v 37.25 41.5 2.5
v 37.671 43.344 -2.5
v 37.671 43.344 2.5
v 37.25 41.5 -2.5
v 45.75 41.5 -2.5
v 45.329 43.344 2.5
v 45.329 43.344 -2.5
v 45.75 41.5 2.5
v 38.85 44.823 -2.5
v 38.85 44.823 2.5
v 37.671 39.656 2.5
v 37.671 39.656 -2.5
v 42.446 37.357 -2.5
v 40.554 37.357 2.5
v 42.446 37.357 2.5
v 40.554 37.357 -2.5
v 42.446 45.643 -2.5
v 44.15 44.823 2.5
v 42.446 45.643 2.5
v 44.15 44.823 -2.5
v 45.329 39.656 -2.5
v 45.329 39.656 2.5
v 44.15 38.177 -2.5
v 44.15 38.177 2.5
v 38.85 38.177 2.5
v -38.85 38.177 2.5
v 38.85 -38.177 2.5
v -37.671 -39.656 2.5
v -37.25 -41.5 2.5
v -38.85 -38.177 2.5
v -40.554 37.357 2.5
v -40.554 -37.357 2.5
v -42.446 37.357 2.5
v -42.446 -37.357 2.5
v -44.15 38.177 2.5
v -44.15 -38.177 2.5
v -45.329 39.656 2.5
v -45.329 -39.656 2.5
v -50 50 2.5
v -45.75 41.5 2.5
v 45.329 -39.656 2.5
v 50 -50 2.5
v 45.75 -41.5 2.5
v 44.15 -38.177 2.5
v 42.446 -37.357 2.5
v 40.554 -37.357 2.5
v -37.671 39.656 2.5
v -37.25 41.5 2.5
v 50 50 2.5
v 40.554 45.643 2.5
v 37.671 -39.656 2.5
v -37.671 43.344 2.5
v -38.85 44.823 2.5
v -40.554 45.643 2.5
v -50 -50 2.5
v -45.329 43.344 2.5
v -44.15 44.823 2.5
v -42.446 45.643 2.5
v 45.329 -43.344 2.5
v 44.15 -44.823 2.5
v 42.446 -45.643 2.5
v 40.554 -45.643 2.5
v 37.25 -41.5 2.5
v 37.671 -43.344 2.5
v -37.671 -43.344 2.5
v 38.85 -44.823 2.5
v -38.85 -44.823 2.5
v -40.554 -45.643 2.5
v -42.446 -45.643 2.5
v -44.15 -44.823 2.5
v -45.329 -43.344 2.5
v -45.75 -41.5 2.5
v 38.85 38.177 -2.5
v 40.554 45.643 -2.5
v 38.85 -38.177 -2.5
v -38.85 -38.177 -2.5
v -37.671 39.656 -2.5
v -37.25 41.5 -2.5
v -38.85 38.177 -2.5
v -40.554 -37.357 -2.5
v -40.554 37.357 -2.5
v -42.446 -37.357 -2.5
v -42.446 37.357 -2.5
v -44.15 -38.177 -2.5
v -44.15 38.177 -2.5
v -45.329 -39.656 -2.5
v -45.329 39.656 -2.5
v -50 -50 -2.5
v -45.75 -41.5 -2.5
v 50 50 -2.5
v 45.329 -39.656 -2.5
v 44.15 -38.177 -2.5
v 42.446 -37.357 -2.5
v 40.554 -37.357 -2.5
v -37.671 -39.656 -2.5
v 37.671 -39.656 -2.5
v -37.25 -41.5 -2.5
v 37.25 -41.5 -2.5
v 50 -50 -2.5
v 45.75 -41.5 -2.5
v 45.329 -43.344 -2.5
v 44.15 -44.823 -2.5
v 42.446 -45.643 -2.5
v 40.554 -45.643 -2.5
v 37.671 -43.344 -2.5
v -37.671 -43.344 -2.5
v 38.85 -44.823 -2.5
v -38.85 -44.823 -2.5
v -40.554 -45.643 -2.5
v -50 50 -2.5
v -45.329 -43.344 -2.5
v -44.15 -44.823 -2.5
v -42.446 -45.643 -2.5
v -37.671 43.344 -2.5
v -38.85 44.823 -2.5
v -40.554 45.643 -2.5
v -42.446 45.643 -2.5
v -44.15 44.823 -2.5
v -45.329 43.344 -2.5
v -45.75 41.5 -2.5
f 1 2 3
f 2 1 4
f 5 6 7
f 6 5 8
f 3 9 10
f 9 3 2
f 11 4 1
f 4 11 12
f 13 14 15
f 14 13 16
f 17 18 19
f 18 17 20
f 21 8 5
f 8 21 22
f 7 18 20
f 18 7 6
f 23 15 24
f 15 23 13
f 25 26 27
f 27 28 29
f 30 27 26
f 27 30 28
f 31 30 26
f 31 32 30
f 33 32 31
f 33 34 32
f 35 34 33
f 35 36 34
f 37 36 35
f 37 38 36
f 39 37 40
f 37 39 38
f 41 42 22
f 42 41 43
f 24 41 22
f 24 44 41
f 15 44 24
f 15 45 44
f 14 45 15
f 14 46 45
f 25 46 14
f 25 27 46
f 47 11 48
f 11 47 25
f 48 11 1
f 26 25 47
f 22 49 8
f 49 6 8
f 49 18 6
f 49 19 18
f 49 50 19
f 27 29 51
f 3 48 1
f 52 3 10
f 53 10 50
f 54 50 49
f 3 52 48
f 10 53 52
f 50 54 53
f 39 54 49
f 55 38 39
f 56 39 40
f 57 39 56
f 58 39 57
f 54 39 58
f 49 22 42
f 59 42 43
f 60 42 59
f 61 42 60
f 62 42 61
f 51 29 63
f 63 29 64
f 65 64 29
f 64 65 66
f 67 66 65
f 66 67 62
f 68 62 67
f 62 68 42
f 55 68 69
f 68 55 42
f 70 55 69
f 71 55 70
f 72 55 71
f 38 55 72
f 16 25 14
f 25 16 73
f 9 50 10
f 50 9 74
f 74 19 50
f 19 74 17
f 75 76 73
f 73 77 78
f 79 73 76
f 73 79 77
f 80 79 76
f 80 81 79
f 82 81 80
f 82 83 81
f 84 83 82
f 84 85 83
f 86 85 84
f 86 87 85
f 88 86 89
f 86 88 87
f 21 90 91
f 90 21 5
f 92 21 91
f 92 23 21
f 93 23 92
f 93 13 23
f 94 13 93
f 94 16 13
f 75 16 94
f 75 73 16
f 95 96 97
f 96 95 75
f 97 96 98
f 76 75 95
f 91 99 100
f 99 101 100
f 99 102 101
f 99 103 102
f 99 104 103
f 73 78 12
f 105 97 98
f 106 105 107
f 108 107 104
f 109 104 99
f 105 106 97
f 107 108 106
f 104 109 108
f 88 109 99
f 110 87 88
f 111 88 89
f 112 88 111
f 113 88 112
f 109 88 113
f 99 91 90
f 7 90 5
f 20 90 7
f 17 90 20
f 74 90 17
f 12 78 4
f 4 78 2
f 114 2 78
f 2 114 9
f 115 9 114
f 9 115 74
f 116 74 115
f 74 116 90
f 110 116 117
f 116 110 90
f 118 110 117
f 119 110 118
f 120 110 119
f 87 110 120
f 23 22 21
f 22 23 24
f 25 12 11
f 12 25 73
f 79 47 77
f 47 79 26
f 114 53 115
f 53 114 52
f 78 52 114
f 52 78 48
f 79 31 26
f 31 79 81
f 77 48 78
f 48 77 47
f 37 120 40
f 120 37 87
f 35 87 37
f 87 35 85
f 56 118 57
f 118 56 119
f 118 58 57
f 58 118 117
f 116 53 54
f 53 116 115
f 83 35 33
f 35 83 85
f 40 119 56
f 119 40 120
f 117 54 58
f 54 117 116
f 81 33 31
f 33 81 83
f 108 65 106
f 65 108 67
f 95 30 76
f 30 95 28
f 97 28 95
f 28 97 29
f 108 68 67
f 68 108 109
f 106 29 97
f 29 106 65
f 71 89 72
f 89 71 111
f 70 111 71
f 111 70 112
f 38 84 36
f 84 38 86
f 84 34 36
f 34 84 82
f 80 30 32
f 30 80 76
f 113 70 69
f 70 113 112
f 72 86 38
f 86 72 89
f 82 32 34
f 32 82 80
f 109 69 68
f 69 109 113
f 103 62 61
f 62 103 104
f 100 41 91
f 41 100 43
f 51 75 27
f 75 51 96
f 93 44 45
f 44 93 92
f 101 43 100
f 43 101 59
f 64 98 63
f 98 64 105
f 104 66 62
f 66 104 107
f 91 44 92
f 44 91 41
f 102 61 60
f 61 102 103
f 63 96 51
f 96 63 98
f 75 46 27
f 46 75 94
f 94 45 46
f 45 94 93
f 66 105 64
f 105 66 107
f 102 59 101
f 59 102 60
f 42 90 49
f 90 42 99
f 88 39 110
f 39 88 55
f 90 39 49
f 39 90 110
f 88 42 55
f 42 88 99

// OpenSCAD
// Generated by SolidPython 1.1.3 on 2023-01-09 23:21:47


difference() {
	cube(center = true, size = [100, 100, 5]);
	union() {
		translate(v = [41.5000000000, 41.5000000000]) {
			cylinder(center = true, h = 5, r = 4.2500000000);
		}
		translate(v = [-41.5000000000, 41.5000000000]) {
			cylinder(center = true, h = 5, r = 4.2500000000);
		}
		translate(v = [-41.5000000000, -41.5000000000]) {
			cylinder(center = true, h = 5, r = 4.2500000000);
		}
		translate(v = [41.5000000000, -41.5000000000]) {
			cylinder(center = true, h = 5, r = 4.2500000000);
		}
	}
}
/***********************************************
*********      SolidPython code:      **********
************************************************
 
import solid
import numbers
import pudb
from solid.utils import *
import viewscad
import subprocess
import os
import os.path as osp
import math
import sys

chamfer_extrude=solid.import_scad("./chamfer_extrude.scad")
chamfer_extrude=chamfer_extrude.chamfer_extrude
r = viewscad.Renderer(width=800, height=800)

def debug(model,f_name,path="/home/ts/code/projects/mfd/designs/debug"):
    solid.scad_render_to_file(model,osp.join(path,f_name)+".scad")
#generate position list of wells using offset from center
wells_pos_from_center_4 = lambda offset: [[-offset,offset],
                                        [offset, offset],
                                        [-offset, -offset],
                                        [offset, -offset]]
#wells_pos_from_center_2 = lambda offset: [[0,offset],
#                                        [0, -offset]]
wells_pos_from_center_2 = lambda offset: [[offset,0],
                                        [-offset,0]]

def make_well(dims,shape=None,height=None,dxf=False):
    def circle_cylinder():
        if dxf or (height is None):
            well = solid.circle(r=dims, segments=64)
        else:
            well = solid.cylinder(r=dims, h=height, segments=64, center = True)
        return well
    if dims is None:
        sys.exit("radius needs to be a number")
    if isinstance(dims, numbers.Number):
        well =circle_cylinder()
    elif len(dims)==1:
        if isinstance(dims[1], numbers.Number):
            well =circle_cylinder()
        else:
            sys.exit("radius needs to be a number")
    elif len(dims)==2:
        well = solid.square(dims,center = True)
    elif len(dims)==3:
        well = solid.cube(dims, center = True)
    return well

def wells_top_bottom(center_gap,device_dims=None,shape=None,height=None, positions = None, dxf = False):
    well_shape = make_well(device_dims,shape=shape,height=height,dxf=dxf)
    wells = []
    if positions is None:
        offset = radius+radius/2.0
        positions = wells_pos_from_center_2(offset)
    if dxf or (height is None):
        height = 0
    for position in positions:
        if dxf:
            wells.append(solid.translate([position[0],position[1]])(well_shape))
        else:
            wells.append(solid.translate([position[0],position[1],height/2.0])(well_shape))
    return  union()(*wells)

#place wells in four corners 
def four_corner(radius,height=None, positions = None, dxf = False):
    #if well pos not specified set
    #to equally spaced by half radius
    if positions is None:
        offset = radius+radius/2.0
        positions = wells_pos_from_center_4(offset)
    if dxf or (height is None):
        height = 0
    #make wells at positions with specified radius and height
    wells = []
    for position in positions:
        #make circle if making dxf
        if dxf:
            well_shape = solid.circle(r=radius, segments=64)
            well_shape = solid.translate([position[0],position[1]])(well_shape)
        #if stl make cylinder
        else:
            well_shape = solid.cylinder(r=radius, h=height, segments=64, center = True)
            well_shape = solid.translate([position[0],position[1],height/2.0])(well_shape)
        wells.append(well_shape)
    return  union()(*wells)

#generate channels 
def make_channels(length,width,height=0,num_chans=1,max_chans=None,spacing=None, dxf = False,
                  rotate_channels=False):
    if dxf or (height is None):
        height = 0
    #if channel gap not defined, is equal to
    if spacing is None: spacing = width
    #calculate number of channels if fitting max num within given width
    if not max_chans is None:
        import math
        num_chans = math.floor((max_chans-spacing)/(width+spacing))
    #get total width of channel section  
    total_width = (width*num_chans)+(spacing*(num_chans-1))

    #make template channel
    #if rotate_channels: width, length = length, width
    if dxf:
        channel_t = solid.square([length,width],center = True)
    else:
        channel_t = solid.cube([length,width,height], center = True)

    #if number channels is even, offset the first channel to center its gap
    if num_chans % 2 == 0: centering = -(width/2.0+spacing/2.0)
    else: centering = 0
    #move template channel up to align bottom at z = 0 
    #and offset center if necessary
    if dxf:
        channel_t = solid.translate([0,centering])(channel_t)
    else:
        channel_t = solid.translate([0,centering,height/2.0])(channel_t)

    #if rotate_channels: length,width = width,length
    #start making the channels
    channels = []
    for i in range(num_chans):
        #if i=0 there is no translation
        #if i=1, we make the first channel adjacent to second
        direction = i

        #if i>=1, we add channels alternating left and right
        if i >= 1:
            direction = -(i/2.0)
            if i % 2 == 1: direction = (-direction)+0.5
                
        #make channel at right position and add it to channel list
        translation_coords = [0,direction*(width+spacing)]
        #if rotate_channels: translation_coords = [direction*(width+spacing),0]
        if dxf:
            channel = solid.translate(translation_coords)(channel_t)
        else:
            channel = solid.translate([*translation_coords,0])(channel_t)
        channels.append(channel)
    
    #group all channels as one object
    channels = union()(*channels)
    #compute the x,y,z dimensions in order to pass as arguments 
    #for construction of other parts of device (such as the chambers)
    measurements = {'x':(length/2.0,-length/2.0),
                    'y':(total_width/2.0,-total_width/2.0)}
    if not dxf:
        measurements['z'] = (height,0)
    if rotate_channels:
        channels = solid.rotate(90)(channels)
        measurements['x'],measurements['y']=measurements['y'],measurements['x']
    return channels,measurements

def make_chambers(msrs,height=None,extra=0,len_until=None,width=None, dxf = False):
    #computes x,y,z length
    total = lambda x : abs(x[0]) + abs(x[1])
    
    #if specific height if specified
    #otherwise use same height as channels
    if dxf:
        pass
    elif not height is None:
        msrs['z'] = (height,0)
    else:
        msrs['z'] = (0,0)
        
    #make copy of measurements from channels to modify chamber dimensions 
    #and add length to chambers as specified
    chamber_dims = msrs.copy()
    #calculate length of chamber to reach specified offset
    if not len_until is None:
        chamber_len = len_until-(msrs['x'][0])
    #or add specified length to channel length (if not specified, adds 0)
    else:
        chamber_len = msrs['x'][0]+extra
    #set the chamber length based 
    chamber_dims['x'] = (chamber_len/2.0,-(chamber_len/2.0))
    #compute final dimensions of chamber
    if not width is None:
        chamber_dims['y'] = (width/2.0,-width/2.0)
    chamber_dims = [total(size) for size in chamber_dims.values()]
        
    #calculate chamber translation offset to place adjacent to channels
    chamber_trslt = msrs['x'][0]+(chamber_len/2.0)
    #compute chamber translation coordinates to align with channels
    #x = 1 moves chamber above channels
    #x = -1 moves chamber below channels
    if dxf:
        trslt = lambda x : [x*(chamber_trslt),0]
    else:
        trslt = lambda x : [x*(chamber_trslt),0,msrs['z'][0]/2.0]
    
    #function to make chamber at top or at bottom 
    if dxf:
        move = lambda x : solid.translate(trslt(x))(solid.square(chamber_dims, center = True) )
    else:
        move = lambda x : solid.translate(trslt(x))(solid.cube(chamber_dims,center = True))
    #make top and bottom chambers and return them as grouped
    top = move(1)
    bottom = move(-1)
    #chambers=solid.rotate(90)(solid.union()(top,bottom))
    chambers=(solid.union()(top,bottom))

    return chambers

#create alignment features 
def alignment_features(unit,dims,grid_size, mask_size = None, alignment = "hollow", units_from_center = (2.5,2.5), corner_len=None):
    width = grid_size[0]*dims[0]
    length = grid_size[1]*dims[1]
    if mask_size is None and corner_len is None:
        corner_len = (dims[0] + dims[1]) /2 / 8
    corner = lambda thickness_div : solid.union()( solid.square([corner_len,corner_len/thickness_div],center=False), solid.square([corner_len/thickness_div,corner_len],center=False) )
    
    def make_full(thickness_div):
        thickness = corner_len/thickness_div
        tr = solid.translate([0, 0, 0 ])(solid.rotate(180)(corner(thickness_div)))
        tr = solid.translate([thickness/2,thickness/2,0])(tr)
        bl = solid.translate([0, 0, 0 ])(solid.rotate(0)(corner(thickness_div)))
        bl = solid.translate([-thickness/2,-thickness/2,0])(bl)
        return solid.union()(tr,bl)
    
    def make_hollow(thickness_div):
        thickness = corner_len/(thickness_div/2)
        inner = make_full(thickness_div)
        outer = make_full(thickness_div/2)
        hollow = outer - inner 
        return hollow
    
    center = (width /2 , length/2)
    mask_pos = lambda x,y : (center[0] + x*(float(units_from_center[0])*dims[0]), center[1] + y*(float(units_from_center[1])*dims[1]))
    positions = []
    positions.append(mask_pos(1,0))
    positions.append(mask_pos(0,1))
    positions.append(mask_pos(-1,0))
    positions.append(mask_pos(0,-1))
    make_mask = lambda mtype : make_hollow(8) if mtype == "hollow" else make_full(8)
    masks = [ solid.translate([*position,0])(make_mask(alignment)) for position in positions]
    
    solid.scad_render_to_file(solid.union()(*masks),"./designs/open_chamber/masks.scad")
    #return unit - solid.union()(*masks)
    return solid.union()(*masks,unit)

def create_outline(thickness, array, dims, grid_size,):
    width = grid_size[0]*dims[0] + thickness *2
    length = grid_size[1]*dims[1] + thickness *2
    outer = solid.translate([-thickness, -thickness,0])(solid.square([width, length]))
    return outer-array

def create_wall(wall_thickness, outline_thickness, dims, grid_size, wall_height = 2000, dxf = False):
    inner_width = grid_size[0]*dims[0] + outline_thickness *2
    inner_length = grid_size[1]*dims[1] + outline_thickness *2
    outer_width = inner_width + wall_thickness * 2
    outer_length = inner_length + wall_thickness * 2
    outer_pos_x = -outline_thickness-wall_thickness
    outer_pos_y = -outline_thickness-wall_thickness
    inner_pos_x = -outline_thickness
    inner_pos_y = -outline_thickness
    if dxf:
        inner_wall = solid.translate([inner_pos_x,
                                      inner_pos_y,
                                      0])(solid.square([inner_width, inner_length]))
        outer_wall = solid.translate([outer_pos_x,
                                      outer_pos_y,
                                      0])(solid.square([outer_width, outer_length]))

        return outer_wall-inner_wall
    else:
        inner_wall = solid.translate([inner_pos_x,
                                      inner_pos_y,
                                      0])(solid.cube([inner_width, inner_length,wall_height]))
        outer_wall = solid.translate([outer_pos_x,
                                      outer_pos_y,
                                      0])(solid.cube([outer_width, outer_length,wall_height]))

        return outer_wall-inner_wall, {'wall_height': wall_height,
                                       'wall_thickness': wall_thickness,
                                       'inner_width':inner_width,
                                       'inner_length': inner_length,
                                       'outer_width': outer_width,
                                       'outer_length': outer_length,
                                       'outer_pos_x' : outer_pos_x,
                                       'outer_pos_y' : outer_pos_y,
                                       'inner_pos_x' : inner_pos_x,
                                       'inner_pos_y' : inner_pos_y}

def create_thicker_wall(wall_thickness, outer_wall_offset, wall_dims, dims, grid_size, height_start = .2, height_end=2, dxf = False):
    addon_wall,thicker_wall_dims = create_wall(wall_thickness, outer_wall_offset, dims, grid_size, wall_height=height_end-height_start, dxf = False)
    addon_wall = solid.translate([0,0,height_start])(addon_wall)

    thicker_wall_dims['wall_height'] = height_end
    thicker_wall_dims['wall_thickness'] = wall_dims['wall_thickness'] + wall_thickness
    return addon_wall, thicker_wall_dims
 
def add_lock_to_wall(wall,wall_dims,y_offset = 0,cut_ratio=0.7,L_length=3, gap_ratio=0.05, axis="x",width_ratio=1/2):
    # Makes L shape
    def make_L(max_length,length_thickness,max_width,width_thickness,height,y_offset):
        length = solid.cube([max_length,length_thickness,height])
        width = solid.cube([width_thickness,max_width,height])
        width = solid.translate([max_length-(width_thickness),0,0])(width)
        L = solid.union()(width,length)
        debug(L,"L")
        if axis == "x":
            L = solid.rotate(-90)(L)
            L = solid.translate([0,max_length,0])(L)
        else:
            L = solid.rotate(-180)(L)
            L = solid.translate([max_length,max_width,0])(L)
        return solid.translate([0,0,y_offset])(L)
    
    lock_length = L_length
    lock_width = wall_dims['wall_thickness']*width_ratio
    lock_length_thickness = lock_width/2
    lock_width_thickness = lock_width/2
    L_lock = make_L(lock_length,lock_length_thickness,lock_width,lock_width_thickness, wall_dims['wall_height']-y_offset, y_offset)
    
    margin_space = lock_length - lock_length*(1-gap_ratio)
    key_length = lock_length-margin_space
    key_length_thickness = lock_length_thickness-(margin_space*2)
    key_width = lock_width-(margin_space*2)
    key_width_thickness = lock_width_thickness-(margin_space*2)
    L_key = make_L(key_length,key_length_thickness,key_width,key_width_thickness, wall_dims['wall_height']-y_offset, y_offset)
    L_key = solid.translate([margin_space,margin_space,0])(L_key)
    L = solid.union()(L_lock,L_key)
    debug(L,"L")
    
    #Make cube to be used as negative to split frame in a half
    #Can choose if making left or right negative, specify ratio of split
    def make_negative(right,cut_ratio):
        if axis == "x":
            if right:
                length = wall_dims['outer_length']*(1-cut_ratio)
                pos_x = wall_dims['outer_pos_x']+(wall_dims['outer_length']*cut_ratio)
            else:
                length = wall_dims['outer_length']*(cut_ratio)
                pos_x = wall_dims['outer_pos_x'] 
            negative = solid.cube([wall_dims['outer_width'],length, wall_dims['wall_height']])
            negative = solid.translate([wall_dims['outer_pos_y'],pos_x,0])(negative)
        else:
            if right:
                length = wall_dims['outer_width']*(1-cut_ratio)
                pos_x = wall_dims['outer_pos_y']+(wall_dims['outer_width']*cut_ratio)
            else:
                length = wall_dims['outer_width']*(cut_ratio)
                pos_x = wall_dims['outer_pos_y'] 
            negative = solid.cube([length,wall_dims['outer_length'], wall_dims['wall_height']])
            negative = solid.translate([pos_x,wall_dims['outer_pos_x'],0])(negative)
        return negative, pos_x, length 
                      
    #Make negatives
    negative_right, right_half_pos_x, right_half_length = make_negative(True,cut_ratio)
    negative_left, left_half_pos_x, right_half_length = make_negative(False,cut_ratio)
    #Make halves
    left_half = solid.difference()(wall,negative_right)
    right_half = solid.difference()(wall,negative_left)
    def place_L(L, L_length,L_width):
        #Place L on top wall       
        offset_to_center = (wall_dims['wall_thickness']-L_width)/2
        if axis == "x":
            y_pos_top = (wall_dims['outer_pos_y'] +
                    wall_dims['outer_width'] - 
                    L_width - offset_to_center)
            top_L = solid.translate([y_pos_top,
                                     right_half_pos_x-(L_length),
                                     0])(L)
            #Place L on bottom wall       
            y_pos_bottom = wall_dims['outer_pos_y']+offset_to_center
            bottom_L = solid.translate([y_pos_bottom,
                                        right_half_pos_x-L_length,
                                        0])(L)
        else:
            y_pos_top = (wall_dims['outer_pos_x'] +
                    wall_dims['outer_length'] -
                    (L_width+offset_to_center))
            top_L = solid.translate([right_half_pos_x-L_length,
                                     y_pos_top,
                                     0])(L)
            #Place L on bottom wall       
            y_pos_bottom = wall_dims['outer_pos_y']+offset_to_center
            bottom_L = solid.translate([right_half_pos_x-L_length,
                                        y_pos_bottom,
                                        0])(L)
        return bottom_L, top_L
    #Make complimentary L pieces through union and differences
    #Make Lock
    bottom_L_lock, top_L_lock = place_L(L_lock,L_length,lock_width)
    left_half = solid.difference()(left_half,bottom_L_lock)
    left_half = solid.difference()(left_half,top_L_lock)
    #Make Key
    bottom_L_key, top_L_key = place_L(L_key,L_length,lock_width)
    right_half = solid.union()(right_half,bottom_L_key)
    right_half = solid.union()(right_half,top_L_key)
    return left_half, right_half


#build a row x col grid of containment units
def make_unit_array(unit,dims,grid_size, dxf = False, alignment = None, mask_size = None,
                    units_from_center = None,alignment_offset=None, alignment_mark_size=1):
    units = []
    for col in range(grid_size[1]):
        for row in range(grid_size[0]):
            if dxf:
                units.append(solid.translate([row*dims[0],col*dims[1]])(unit))
            else:
                units.append(solid.translate([row*dims[0],col*dims[1],dims[2]/2.0])(unit))
    array = solid.union()(*units)
    if (not alignment is None) and dxf:
        if not alignment_offset is None:
            array = solid.translate([alignment_offset[0],alignment_offset[1]])(array)
        array = alignment_features(array,dims, grid_size, alignment = alignment, mask_size = None, units_from_center = units_from_center,corner_len=alignment_mark_size)
        if not alignment_offset is None:
            array = solid.translate([-alignment_offset[0],-alignment_offset[1]])(array)
    return array


def make_taylor(wells_pos = wells_pos_from_center_4(2.25), well_rad = 1.5 ,
                well_height = 2, chan_w = 0.01, chan_l = 1, chan_h = 0.010 ,
                chan_gap = 0.040, max_chans = None,num_chans=100, chamber_height  = 0.100,
                columns = 1, rows = 1, chamber_len_until=2.25, add_channels = True, add_wells = True, 
                add_chambers = True, save_path = "./", alignment = None, units_from_center = 2,
                mask_size = None, render_stl = False, outline_thickness = 0.050, dxf = True,
                wall_height = 15, wall_thickness = 0.95, casing_x=9, casing_y=9, casing_z=0,rotate_units=0):

    dims = [casing_x, casing_y, casing_z]
    wells = four_corner(well_rad,well_height, dxf = dxf, positions = wells_pos)
    debug(wells,"wells")
    channels, msrs = make_channels(chan_l,chan_w,chan_h,dxf=dxf, spacing = chan_gap, max_chans=max_chans,num_chans=num_chans)
    debug(channels,"channels")
    chambers = make_chambers(msrs,dxf = dxf, height=chamber_height,len_until=chamber_len_until)
    debug(chambers,"chambers")

    #add together and render
    device_parts = []
    if add_channels:
        device_parts.append(channels)
    if add_wells:
        device_parts.append(wells)
    if add_chambers:
        device_parts.append(chambers)
    device=union()(*device_parts)
    device = rotate(rotate_units)(device)

    device=solid.translate([dims[0]/2.0,dims[1]/2.0,0])(device)
    channels = rotate(rotate_units)(channels)
    channels=solid.translate([dims[0]/2,dims[1]/2,0])(channels)
    chambers_wells = union()(wells,chambers)
    chambers_wells = rotate(rotate_units)(chambers_wells)
    chambers_wells=solid.translate([dims[0]/2,dims[1]/2,0])(chambers_wells)

    file_name = str(rows)+'x'+str(columns)+'_units_'
    grid_size = [rows,columns]

    if alignment:
        alignment="full"
    device = make_unit_array(device,dims,grid_size, dxf=dxf, alignment = alignment,
                                 units_from_center = units_from_center)
    channels = make_unit_array(channels,dims,grid_size, dxf=dxf, alignment = alignment,
                                 units_from_center = units_from_center)
    if alignment=="full":
        alignment="hollow"

    chambers_wells = make_unit_array(chambers_wells,dims,grid_size, dxf=dxf, alignment = alignment,
                                 units_from_center =units_from_center)

    def save_model(model,prefix):
        model_fname = os.path.abspath(save_path+prefix+"_"+file_name+".scad")
        solid.scad_render_to_file(model,model_fname)
        return model_fname

    wells_fname = save_model(wells,"wells")
    channels_fname = save_model(channels,"channels")
    device_fname = save_model(device,"device")
    chambers_wells_fname = save_model(chambers_wells,"chambers_wells")
    return (chambers_wells,chambers_wells_fname), (channels,channels_fname), (device,device_fname)

def make_device(design='open',rows=8,columns=6,wells_pos = 4.5,well_offset=3.2, well_rad=3.2,well_height=0.1,
                chan_l=1,chan_w=0.01,chan_h=0.01,chan_gap=0.015,num_chans=101,dxf=True,save_path="./designs/open_chamber/",
                casing_x=9.0,casing_y=18.0,casing_z=0,rotate_units=90,units_from_center=(3,1),chamber_len_until=4.5,
                chamber_width=None,alignment=True, add_wells=True, add_channels=True,add_chambers=True):

    dims = [casing_x, casing_y, casing_z]
    if design == "open":
        wells_pos=wells_pos_from_center_2(wells_pos)
        wells = wells_top_bottom(well_offset*2,device_dims=well_rad,height=well_height, dxf = dxf, positions = wells_pos)
    elif design == "closed":
        wells_pos=wells_pos_from_center_4(wells_pos)
        debug(wells,"wells")
        wells = four_corner(well_offset,well_heightdevice_dims=well_rad, dxf = dxf, positions = wells_pos)
    else:
        print(design+" is not a valid design.\n Choose valid design: 'open' or 'closed'")
        exit()
    wells = rotate(rotate_units)(wells)
    wells=solid.translate([dims[0]/2,dims[1]/2,0])(wells)
    debug(wells,"wells")

    channels, msrs = make_channels(chan_l,chan_w,chan_h,dxf=dxf, spacing = chan_gap, num_chans=num_chans,rotate_channels=False)
    channels = rotate(rotate_units)(channels)
    channels=solid.translate([dims[0]/2,dims[1]/2,0])(channels)

    chambers=make_chambers(msrs,height=None,extra=0,len_until=chamber_len_until, width=chamber_width,dxf = dxf)
    chambers = rotate(rotate_units)(chambers)
    chambers=solid.translate([dims[0]/2,dims[1]/2,0])(chambers)

    device_parts = []
    if add_channels:
        device_parts.append(channels)
    if add_wells:
        device_parts.append(wells)
    if add_chambers:
        device_parts.append(chambers)
    device = union()(*device_parts)
    #device = rotate(rotate_units)(device)
    #device=solid.translate([dims[0]/2.0,dims[1]/2.0,0])(device)

    chambers_wells = []
    if add_chambers:
        chambers_wells.append(chambers)
    if add_wells:
        chambers_wells.append(wells)
    chambers_wells = union()(*chambers_wells)
    #chambers_wells = union()(wells,chambers)
    #chambers_wells = rotate(rotate_units)(chambers_wells)
    #chambers_wells=solid.translate([dims[0]/2,dims[1]/2,0])(chambers_wells)

    file_name = str(rows)+'x'+str(columns)+'_units_'

    grid_size = [rows,columns]
    if alignment:
        alignment="full"
    device = make_unit_array(device,dims,grid_size, dxf=dxf, alignment = alignment,
                                 units_from_center = units_from_center)
    channels = make_unit_array(channels,dims,grid_size, dxf=dxf, alignment = alignment,
                                 units_from_center = units_from_center)
    if alignment=="full":
        alignment="hollow"

    chambers_wells = make_unit_array(chambers_wells,dims,grid_size, dxf=dxf, alignment = alignment,
                                 units_from_center =units_from_center)

    def save_model(model,prefix):
        model_fname = os.path.abspath(save_path+prefix+"_"+file_name+".scad")
        solid.scad_render_to_file(model,model_fname)
        return model_fname

    wells_fname = save_model(wells,"wells")
    channels_fname = save_model(channels,"channels")
    device_fname = save_model(device,"device")
    chambers_wells_fname = save_model(chambers_wells,"chambers_wells")
    return (chambers_wells,chambers_wells_fname), (channels,channels_fname), (device,device_fname)


def make_open_chamber(rows=8,columns=6,wells_pos = wells_pos_from_center_2(4.5), well_rad=3.2,well_height=0.1,
                      chan_l=1,chan_w=0.01,chan_h=0.01,chan_gap=0.015,num_chans=101,dxf=True,save_path="./designs/open_chamber/",
                      casing_x=9.0,casing_y=18.0,casing_z=0,rotate_units=90,units_from_center=(3,1),chamber_len_until=4.5,
                      chamber_width=None,alignment=True, add_wells=True, add_channels=True,add_chambers=True):

    dims = [casing_x, casing_y, casing_z]
    wells = wells_top_bottom(well_rad,height=well_height, dxf = dxf, positions = wells_pos)
    channels, msrs = make_channels(chan_l,chan_w,chan_h,dxf=dxf, spacing = chan_gap, num_chans=num_chans,rotate_channels=False)
    chambers=make_chambers(msrs,height=None,extra=0,len_until=chamber_len_until, width=chamber_width,dxf = dxf)
    debug(chambers,"chambers")
    device_parts = []
    if add_channels:
        device_parts.append(channels)
    if add_wells:
        device_parts.append(wells)
    if add_chambers:
        device_parts.append(chambers)
    device = union()(*device_parts)
    device = rotate(rotate_units)(device)
    device=solid.translate([dims[0]/2.0,dims[1]/2.0,0])(device)
    channels = rotate(rotate_units)(channels)
    channels=solid.translate([dims[0]/2,dims[1]/2,0])(channels)
    chambers_wells = union()(wells,chambers)
    chambers_wells = rotate(rotate_units)(chambers_wells)
    chambers_wells=solid.translate([dims[0]/2,dims[1]/2,0])(chambers_wells)

    file_name = str(rows)+'x'+str(columns)+'_units_'

    grid_size = [rows,columns]
    if alignment:
        alignment="full"
    device = make_unit_array(device,dims,grid_size, dxf=dxf, alignment = alignment,
                                 units_from_center = units_from_center)
    channels = make_unit_array(channels,dims,grid_size, dxf=dxf, alignment = alignment,
                                 units_from_center = units_from_center)
    if alignment=="full":
        alignment="hollow"

    chambers_wells = make_unit_array(chambers_wells,dims,grid_size, dxf=dxf, alignment = alignment,
                                 units_from_center =units_from_center)

    def save_model(model,prefix):
        model_fname = os.path.abspath(save_path+prefix+"_"+file_name+".scad")
        solid.scad_render_to_file(model,model_fname)
        return model_fname

    wells_fname = save_model(wells,"wells")
    channels_fname = save_model(channels,"channels")
    device_fname = save_model(device,"device")
    chambers_wells_fname = save_model(chambers_wells,"chambers_wells")
    return (chambers_wells,chambers_wells_fname), (channels,channels_fname), (device,device_fname)

def to_dxf(scad_path):
    dxf_path = scad_path.replace(".scad",".dxf")
    subprocess.call(["openscad", "-o", dxf_path, scad_path])
    import ezdxf
    temp_dxf = ezdxf.readfile(dxf_path)
    temp_dxf.saveas(dxf_path)

#def make_walls(diameter,thickness,grid_size,dims,height=20,segments=256,make_inner=True):
#    wafer_wall_out = solid.cylinder(r=diameter/2,h=height, segments=segments)
#    wafer_wall_in = solid.cylinder(r=(diameter/2-thickness),h=height, segments=segments)
#    wafer_wall = solid.difference()(wafer_wall_out,wafer_wall_in)
#    wafer_wall = solid.translate([grid_size[1]*dims[1]/2.0,grid_size[0]*dims[0]/2.0])(wafer_wall)
#
#    vertical_wall_length = grid_size[1]*dims[1]
#    horizontal_wall_length = grid_size[0]*dims[0]
#    vertical_wall = solid.cube([vertical_wall_length,thickness,height],center = True)
#    vertical_wall = solid.translate([vertical_wall_length/2,0,height/2])(vertical_wall)
#    horizontal_wall = solid.cube([thickness,horizontal_wall_length,height],center = True)
#    horizontal_wall = solid.translate([0,vertical_wall_length/2,height/2])(horizontal_wall)
#    walls = []
#    walls.append(horizontal_wall)
#    walls.append(vertical_wall)
#    for col in range(grid_size[1]):
#        if col == grid_size[1]-1: 
#            walls.append(solid.translate([0,(col+1)*dims[1]])(vertical_wall))
#        elif col > 0 and col < grid_size[1]-1 and make_inner==True:
#            walls.append(solid.translate([0,(col+1)*dims[1]])(vertical_wall))
#    for row in range(grid_size[0]):
#        if row == grid_size[0]-1: 
#            walls.append(solid.translate([(row+1)*dims[0],0])(horizontal_wall))
#        elif row > 0 and row < grid_size[0]-1 and make_inner==True:
#            walls.append(solid.translate([(row+1)*dims[0],0])(horizontal_wall))
#    walls = union()(*walls)
#    wafer_walls = union()(walls,wafer_wall)
#    return walls,wafer_wall,wafer_walls

def make_walls(diameter,thickness,grid_size,dims,height=20,segments=256,make_inner=True,padx=0,pady=0):
    wafer_wall_out = solid.cylinder(r=diameter/2,h=height, segments=segments)
    wafer_wall_in = solid.cylinder(r=(diameter/2-thickness),h=height, segments=segments)
    wafer_wall = solid.difference()(wafer_wall_out,wafer_wall_in)
    wafer_wall = solid.translate([grid_size[1]*dims[1]/2.0,grid_size[0]*dims[0]/2.0])(wafer_wall)

    vertical_wall_length = grid_size[0]*dims[0]+padx
    horizontal_wall_length = grid_size[1]*dims[1]+pady
    vertical_wall = solid.cube([vertical_wall_length,thickness,height],center = True)
    vertical_wall = solid.translate([vertical_wall_length/2-pady/2,-padx/2,height/2])(vertical_wall)
    horizontal_wall = solid.cube([thickness,horizontal_wall_length,height],center = True)
    horizontal_wall = solid.translate([-pady/2,horizontal_wall_length/2-padx/2,height/2])(horizontal_wall)
    walls = []
    walls.append(horizontal_wall)
    walls.append(vertical_wall)
    for col in range(grid_size[1]):
        if col == grid_size[1]-1: 
            walls.append(solid.translate([0,(col+1)*dims[1]+pady])(vertical_wall))
        elif col > 0 and col < grid_size[1]-1 and make_inner==True:
            walls.append(solid.translate([0,(col+1)*dims[1]])(vertical_wall))
    for row in range(grid_size[0]):
        if row == grid_size[0]-1: 
            walls.append(solid.translate([(row+1)*dims[0]+padx,0])(horizontal_wall))
        elif row > 0 and row < grid_size[0]-1 and make_inner==True:
            walls.append(solid.translate([(row+1)*dims[0],0])(horizontal_wall))
    walls = union()(*walls)
    wafer_walls = union()(walls,wafer_wall)
    return walls,wafer_wall,wafer_walls

def save_model(model,base_path,base_name,dxf=True):
    if not os.path.exists(base_path):
        os.makedirs(base_path)
    dxf_path=osp.join(base_path,base_name+".scad")
    solid.scad_render_to_file(model,osp.join(dxf_path))
    if dxf:
        to_dxf(dxf_path)

def make_wafer(diameter,flat_len,thickness):
    wafer = solid.cylinder(r1=diameter/2,r2=diameter/2,h=thickness,segments=512,)()
    x_start_flat=(flat_len/2)
    y_start_flat = math.sqrt(((diameter/2)**2) - (x_start_flat**2) )
    height_delete_flat=diameter/2-y_start_flat
    flat_delete = solid.cube([flat_len,height_delete_flat,thickness],center=False)()
    flat_delete = solid.translate([-flat_len/2,y_start_flat,0])(flat_delete)
    wafer = solid.difference()(wafer,flat_delete)
    wafer = solid.rotate(90)(wafer)
    return wafer

def add_wafer_to_mask(wafer_size,flat_len,mask,grid_size,dims,wafer_line_thickness=0.1,outer_mask_thickness=5,alignment_offset=None):
    def make_wafer_mask(wafer_size,flat_len):
        wafer_mask = make_wafer(wafer_size,flat_len,1)
        wafer_mask = solid.projection()(wafer_mask)
        wafer_mask = solid.translate([grid_size[0]*dims[0]/2.0,grid_size[1]*dims[1]/2.0])(wafer_mask)
        if not alignment_offset is None:
            wafer_mask = solid.translate([-alignment_offset[0],-alignment_offset[1]])(wafer_mask)
        return wafer_mask

    inner_wafer_line_mask = make_wafer_mask(wafer_size-wafer_line_thickness/2,flat_len)
    outer_wafer_line_mask = make_wafer_mask(wafer_size+wafer_line_thickness/2,flat_len)
    outer_wafer_mask = make_wafer_mask(wafer_size+outer_mask_thickness,flat_len)
    outer_wafer_mask = solid.difference()(outer_wafer_mask,outer_wafer_line_mask)
    wafer_mask = solid.union()(outer_wafer_mask,inner_wafer_line_mask)

    return solid.difference()(wafer_mask,mask)

def make_posts(post_shape,post_height):
    posts = solid.linear_extrude(height=post_height)(post_shape)
    return posts

def make_wafer_empty(diameter,flat_len,thickness,margin,notch_len=20,notch_height=5,oversize=1.01):
    diameter*=oversize
    flat_len*=oversize
    wafer = make_wafer(diameter,flat_len,thickness)
    holder = solid.cylinder(r1=diameter/2+margin,r2=diameter/2+margin,h=thickness,segments=512)()
    holder = solid.difference()(holder,wafer)

    x_start_flat=(flat_len/2)
    y_start_flat = math.sqrt(((diameter/2)**2) - (x_start_flat**2) )
    height_delete_flat=diameter/2-y_start_flat
    notch = solid.cube([notch_len,notch_height,thickness],center=False)()
    notch = solid.translate([-notch_len/2,y_start_flat,0])(notch)
    notch = solid.rotate(90)(notch)
    return solid.difference()(holder,notch)

def wafer_print_calibration(diameter,thickness,height,z_offset):
    circles = []
    radii = []
    radii.append(diameter/2.0*0.8)
    radii.append(diameter/2.0*0.6)
    radii.append(diameter/2.0*0.4)
    radii.append(diameter/2.0*0.2)
    for radius in radii:
        inner = solid.cylinder(r1=radius-(thickness/2.0),r2=radius-(thickness/2.0),h=thickness,segments=512,)()
        outer = solid.cylinder(r1=radius+(thickness/2.0),r2=radius+(thickness/2.0),h=thickness,segments=512,)()
        diff = solid.difference()(outer,inner)
        circles.append(diff)
    circles = solid.union()(*circles)
    circles = solid.translate([0,0,z_offset])(circles)
    return circles

def make_rack(wells,dims,grid_size,alignment_offset,rack_x,rack_y,rack_thickness,bolt_width,add_bolts=True):

    #get X and Y dimensions of gride of pipette tips
    X_len = dims[0]*grid_size[0]
    Y_len = dims[1]*grid_size[1]
    #make rack
    rack = solid.cube([rack_x,rack_y,rack_thickness],center=True)

    if add_bolts:
    #add bolt holes
        bolt_hole=solid.cylinder(r=bolt_width/2,h=rack_thickness,center=True)()
        bolt_holes = []
        bolt_holes.append(solid.translate([rack_x/2-1.5*bolt_width,rack_y/2-1.5*bolt_width])(bolt_hole))
        bolt_holes.append(solid.translate([-rack_x/2+1.5*bolt_width,rack_y/2-1.5*bolt_width])(bolt_hole))
        bolt_holes.append(solid.translate([-rack_x/2+1.5*bolt_width,-rack_y/2+1.5*bolt_width])(bolt_hole))
        bolt_holes.append(solid.translate([rack_x/2-1.5*bolt_width,-rack_y/2+1.5*bolt_width])(bolt_hole))
        bolt_holes = solid.union()(*bolt_holes)
        rack=solid.difference()(rack,bolt_holes)
    rack_support = rack

    #center rack with pipette holes
    rack = solid.translate([0,0,rack_thickness/2])(rack)
    rack = solid.translate([X_len/2,Y_len/2])(rack)
    rack = solid.translate([-alignment_offset[0],-alignment_offset[1]])(rack)
    wells = solid.linear_extrude(height=rack_thickness)(wells)
    rack = solid.difference()(rack,wells)
    return rack, rack_support

def make_pillar(wells,dims,grid_size,alignment_offset,rack_x,rack_y,pillar_height,rack_thickness,bolt_width,add_bolts=True,taper_angle=1,bolt_position_corner=1.5):

    #get X and Y dimensions of gride of pipette tips
    X_len = dims[0]*grid_size[0]
    Y_len = dims[1]*grid_size[1]
    #make rack
    rack = solid.cube([rack_x,rack_y,rack_thickness],center=True)
    
    if add_bolts:
    #add bolt holes
        bolt_hole=solid.cylinder(r=bolt_width/2,h=rack_thickness,center=True)()
        bolt_holes = []
        bolt_holes.append(solid.translate([rack_x/2-bolt_position_corner*bolt_width,rack_y/2-bolt_position_corner*bolt_width])(bolt_hole))
        bolt_holes.append(solid.translate([-rack_x/2+bolt_position_corner*bolt_width,rack_y/2-bolt_position_corner*bolt_width])(bolt_hole))
        bolt_holes.append(solid.translate([-rack_x/2+bolt_position_corner*bolt_width,-rack_y/2+bolt_position_corner*bolt_width])(bolt_hole))
        bolt_holes.append(solid.translate([rack_x/2-bolt_position_corner*bolt_width,-rack_y/2+bolt_position_corner*bolt_width])(bolt_hole))
        bolt_holes = solid.union()(*bolt_holes)
        rack=solid.difference()(rack,bolt_holes)
    rack_support = rack

    #center rack with pipette holes
    #rack = solid.translate([0,0,-rack_thickness])(rack)
    rack = solid.translate([X_len/2,Y_len/2])(rack)
    rack = solid.translate([-alignment_offset[0],-alignment_offset[1]])(rack)
    if not taper_angle == 0:
        wells=chamfer_extrude(pillar_height,taper_angle,segments=20)(wells)
    else:
        wells = solid.linear_extrude(height=pillar_height)(wells)
    rack = solid.union()(rack,wells)
    return rack, rack_support









 
 
************************************************/
